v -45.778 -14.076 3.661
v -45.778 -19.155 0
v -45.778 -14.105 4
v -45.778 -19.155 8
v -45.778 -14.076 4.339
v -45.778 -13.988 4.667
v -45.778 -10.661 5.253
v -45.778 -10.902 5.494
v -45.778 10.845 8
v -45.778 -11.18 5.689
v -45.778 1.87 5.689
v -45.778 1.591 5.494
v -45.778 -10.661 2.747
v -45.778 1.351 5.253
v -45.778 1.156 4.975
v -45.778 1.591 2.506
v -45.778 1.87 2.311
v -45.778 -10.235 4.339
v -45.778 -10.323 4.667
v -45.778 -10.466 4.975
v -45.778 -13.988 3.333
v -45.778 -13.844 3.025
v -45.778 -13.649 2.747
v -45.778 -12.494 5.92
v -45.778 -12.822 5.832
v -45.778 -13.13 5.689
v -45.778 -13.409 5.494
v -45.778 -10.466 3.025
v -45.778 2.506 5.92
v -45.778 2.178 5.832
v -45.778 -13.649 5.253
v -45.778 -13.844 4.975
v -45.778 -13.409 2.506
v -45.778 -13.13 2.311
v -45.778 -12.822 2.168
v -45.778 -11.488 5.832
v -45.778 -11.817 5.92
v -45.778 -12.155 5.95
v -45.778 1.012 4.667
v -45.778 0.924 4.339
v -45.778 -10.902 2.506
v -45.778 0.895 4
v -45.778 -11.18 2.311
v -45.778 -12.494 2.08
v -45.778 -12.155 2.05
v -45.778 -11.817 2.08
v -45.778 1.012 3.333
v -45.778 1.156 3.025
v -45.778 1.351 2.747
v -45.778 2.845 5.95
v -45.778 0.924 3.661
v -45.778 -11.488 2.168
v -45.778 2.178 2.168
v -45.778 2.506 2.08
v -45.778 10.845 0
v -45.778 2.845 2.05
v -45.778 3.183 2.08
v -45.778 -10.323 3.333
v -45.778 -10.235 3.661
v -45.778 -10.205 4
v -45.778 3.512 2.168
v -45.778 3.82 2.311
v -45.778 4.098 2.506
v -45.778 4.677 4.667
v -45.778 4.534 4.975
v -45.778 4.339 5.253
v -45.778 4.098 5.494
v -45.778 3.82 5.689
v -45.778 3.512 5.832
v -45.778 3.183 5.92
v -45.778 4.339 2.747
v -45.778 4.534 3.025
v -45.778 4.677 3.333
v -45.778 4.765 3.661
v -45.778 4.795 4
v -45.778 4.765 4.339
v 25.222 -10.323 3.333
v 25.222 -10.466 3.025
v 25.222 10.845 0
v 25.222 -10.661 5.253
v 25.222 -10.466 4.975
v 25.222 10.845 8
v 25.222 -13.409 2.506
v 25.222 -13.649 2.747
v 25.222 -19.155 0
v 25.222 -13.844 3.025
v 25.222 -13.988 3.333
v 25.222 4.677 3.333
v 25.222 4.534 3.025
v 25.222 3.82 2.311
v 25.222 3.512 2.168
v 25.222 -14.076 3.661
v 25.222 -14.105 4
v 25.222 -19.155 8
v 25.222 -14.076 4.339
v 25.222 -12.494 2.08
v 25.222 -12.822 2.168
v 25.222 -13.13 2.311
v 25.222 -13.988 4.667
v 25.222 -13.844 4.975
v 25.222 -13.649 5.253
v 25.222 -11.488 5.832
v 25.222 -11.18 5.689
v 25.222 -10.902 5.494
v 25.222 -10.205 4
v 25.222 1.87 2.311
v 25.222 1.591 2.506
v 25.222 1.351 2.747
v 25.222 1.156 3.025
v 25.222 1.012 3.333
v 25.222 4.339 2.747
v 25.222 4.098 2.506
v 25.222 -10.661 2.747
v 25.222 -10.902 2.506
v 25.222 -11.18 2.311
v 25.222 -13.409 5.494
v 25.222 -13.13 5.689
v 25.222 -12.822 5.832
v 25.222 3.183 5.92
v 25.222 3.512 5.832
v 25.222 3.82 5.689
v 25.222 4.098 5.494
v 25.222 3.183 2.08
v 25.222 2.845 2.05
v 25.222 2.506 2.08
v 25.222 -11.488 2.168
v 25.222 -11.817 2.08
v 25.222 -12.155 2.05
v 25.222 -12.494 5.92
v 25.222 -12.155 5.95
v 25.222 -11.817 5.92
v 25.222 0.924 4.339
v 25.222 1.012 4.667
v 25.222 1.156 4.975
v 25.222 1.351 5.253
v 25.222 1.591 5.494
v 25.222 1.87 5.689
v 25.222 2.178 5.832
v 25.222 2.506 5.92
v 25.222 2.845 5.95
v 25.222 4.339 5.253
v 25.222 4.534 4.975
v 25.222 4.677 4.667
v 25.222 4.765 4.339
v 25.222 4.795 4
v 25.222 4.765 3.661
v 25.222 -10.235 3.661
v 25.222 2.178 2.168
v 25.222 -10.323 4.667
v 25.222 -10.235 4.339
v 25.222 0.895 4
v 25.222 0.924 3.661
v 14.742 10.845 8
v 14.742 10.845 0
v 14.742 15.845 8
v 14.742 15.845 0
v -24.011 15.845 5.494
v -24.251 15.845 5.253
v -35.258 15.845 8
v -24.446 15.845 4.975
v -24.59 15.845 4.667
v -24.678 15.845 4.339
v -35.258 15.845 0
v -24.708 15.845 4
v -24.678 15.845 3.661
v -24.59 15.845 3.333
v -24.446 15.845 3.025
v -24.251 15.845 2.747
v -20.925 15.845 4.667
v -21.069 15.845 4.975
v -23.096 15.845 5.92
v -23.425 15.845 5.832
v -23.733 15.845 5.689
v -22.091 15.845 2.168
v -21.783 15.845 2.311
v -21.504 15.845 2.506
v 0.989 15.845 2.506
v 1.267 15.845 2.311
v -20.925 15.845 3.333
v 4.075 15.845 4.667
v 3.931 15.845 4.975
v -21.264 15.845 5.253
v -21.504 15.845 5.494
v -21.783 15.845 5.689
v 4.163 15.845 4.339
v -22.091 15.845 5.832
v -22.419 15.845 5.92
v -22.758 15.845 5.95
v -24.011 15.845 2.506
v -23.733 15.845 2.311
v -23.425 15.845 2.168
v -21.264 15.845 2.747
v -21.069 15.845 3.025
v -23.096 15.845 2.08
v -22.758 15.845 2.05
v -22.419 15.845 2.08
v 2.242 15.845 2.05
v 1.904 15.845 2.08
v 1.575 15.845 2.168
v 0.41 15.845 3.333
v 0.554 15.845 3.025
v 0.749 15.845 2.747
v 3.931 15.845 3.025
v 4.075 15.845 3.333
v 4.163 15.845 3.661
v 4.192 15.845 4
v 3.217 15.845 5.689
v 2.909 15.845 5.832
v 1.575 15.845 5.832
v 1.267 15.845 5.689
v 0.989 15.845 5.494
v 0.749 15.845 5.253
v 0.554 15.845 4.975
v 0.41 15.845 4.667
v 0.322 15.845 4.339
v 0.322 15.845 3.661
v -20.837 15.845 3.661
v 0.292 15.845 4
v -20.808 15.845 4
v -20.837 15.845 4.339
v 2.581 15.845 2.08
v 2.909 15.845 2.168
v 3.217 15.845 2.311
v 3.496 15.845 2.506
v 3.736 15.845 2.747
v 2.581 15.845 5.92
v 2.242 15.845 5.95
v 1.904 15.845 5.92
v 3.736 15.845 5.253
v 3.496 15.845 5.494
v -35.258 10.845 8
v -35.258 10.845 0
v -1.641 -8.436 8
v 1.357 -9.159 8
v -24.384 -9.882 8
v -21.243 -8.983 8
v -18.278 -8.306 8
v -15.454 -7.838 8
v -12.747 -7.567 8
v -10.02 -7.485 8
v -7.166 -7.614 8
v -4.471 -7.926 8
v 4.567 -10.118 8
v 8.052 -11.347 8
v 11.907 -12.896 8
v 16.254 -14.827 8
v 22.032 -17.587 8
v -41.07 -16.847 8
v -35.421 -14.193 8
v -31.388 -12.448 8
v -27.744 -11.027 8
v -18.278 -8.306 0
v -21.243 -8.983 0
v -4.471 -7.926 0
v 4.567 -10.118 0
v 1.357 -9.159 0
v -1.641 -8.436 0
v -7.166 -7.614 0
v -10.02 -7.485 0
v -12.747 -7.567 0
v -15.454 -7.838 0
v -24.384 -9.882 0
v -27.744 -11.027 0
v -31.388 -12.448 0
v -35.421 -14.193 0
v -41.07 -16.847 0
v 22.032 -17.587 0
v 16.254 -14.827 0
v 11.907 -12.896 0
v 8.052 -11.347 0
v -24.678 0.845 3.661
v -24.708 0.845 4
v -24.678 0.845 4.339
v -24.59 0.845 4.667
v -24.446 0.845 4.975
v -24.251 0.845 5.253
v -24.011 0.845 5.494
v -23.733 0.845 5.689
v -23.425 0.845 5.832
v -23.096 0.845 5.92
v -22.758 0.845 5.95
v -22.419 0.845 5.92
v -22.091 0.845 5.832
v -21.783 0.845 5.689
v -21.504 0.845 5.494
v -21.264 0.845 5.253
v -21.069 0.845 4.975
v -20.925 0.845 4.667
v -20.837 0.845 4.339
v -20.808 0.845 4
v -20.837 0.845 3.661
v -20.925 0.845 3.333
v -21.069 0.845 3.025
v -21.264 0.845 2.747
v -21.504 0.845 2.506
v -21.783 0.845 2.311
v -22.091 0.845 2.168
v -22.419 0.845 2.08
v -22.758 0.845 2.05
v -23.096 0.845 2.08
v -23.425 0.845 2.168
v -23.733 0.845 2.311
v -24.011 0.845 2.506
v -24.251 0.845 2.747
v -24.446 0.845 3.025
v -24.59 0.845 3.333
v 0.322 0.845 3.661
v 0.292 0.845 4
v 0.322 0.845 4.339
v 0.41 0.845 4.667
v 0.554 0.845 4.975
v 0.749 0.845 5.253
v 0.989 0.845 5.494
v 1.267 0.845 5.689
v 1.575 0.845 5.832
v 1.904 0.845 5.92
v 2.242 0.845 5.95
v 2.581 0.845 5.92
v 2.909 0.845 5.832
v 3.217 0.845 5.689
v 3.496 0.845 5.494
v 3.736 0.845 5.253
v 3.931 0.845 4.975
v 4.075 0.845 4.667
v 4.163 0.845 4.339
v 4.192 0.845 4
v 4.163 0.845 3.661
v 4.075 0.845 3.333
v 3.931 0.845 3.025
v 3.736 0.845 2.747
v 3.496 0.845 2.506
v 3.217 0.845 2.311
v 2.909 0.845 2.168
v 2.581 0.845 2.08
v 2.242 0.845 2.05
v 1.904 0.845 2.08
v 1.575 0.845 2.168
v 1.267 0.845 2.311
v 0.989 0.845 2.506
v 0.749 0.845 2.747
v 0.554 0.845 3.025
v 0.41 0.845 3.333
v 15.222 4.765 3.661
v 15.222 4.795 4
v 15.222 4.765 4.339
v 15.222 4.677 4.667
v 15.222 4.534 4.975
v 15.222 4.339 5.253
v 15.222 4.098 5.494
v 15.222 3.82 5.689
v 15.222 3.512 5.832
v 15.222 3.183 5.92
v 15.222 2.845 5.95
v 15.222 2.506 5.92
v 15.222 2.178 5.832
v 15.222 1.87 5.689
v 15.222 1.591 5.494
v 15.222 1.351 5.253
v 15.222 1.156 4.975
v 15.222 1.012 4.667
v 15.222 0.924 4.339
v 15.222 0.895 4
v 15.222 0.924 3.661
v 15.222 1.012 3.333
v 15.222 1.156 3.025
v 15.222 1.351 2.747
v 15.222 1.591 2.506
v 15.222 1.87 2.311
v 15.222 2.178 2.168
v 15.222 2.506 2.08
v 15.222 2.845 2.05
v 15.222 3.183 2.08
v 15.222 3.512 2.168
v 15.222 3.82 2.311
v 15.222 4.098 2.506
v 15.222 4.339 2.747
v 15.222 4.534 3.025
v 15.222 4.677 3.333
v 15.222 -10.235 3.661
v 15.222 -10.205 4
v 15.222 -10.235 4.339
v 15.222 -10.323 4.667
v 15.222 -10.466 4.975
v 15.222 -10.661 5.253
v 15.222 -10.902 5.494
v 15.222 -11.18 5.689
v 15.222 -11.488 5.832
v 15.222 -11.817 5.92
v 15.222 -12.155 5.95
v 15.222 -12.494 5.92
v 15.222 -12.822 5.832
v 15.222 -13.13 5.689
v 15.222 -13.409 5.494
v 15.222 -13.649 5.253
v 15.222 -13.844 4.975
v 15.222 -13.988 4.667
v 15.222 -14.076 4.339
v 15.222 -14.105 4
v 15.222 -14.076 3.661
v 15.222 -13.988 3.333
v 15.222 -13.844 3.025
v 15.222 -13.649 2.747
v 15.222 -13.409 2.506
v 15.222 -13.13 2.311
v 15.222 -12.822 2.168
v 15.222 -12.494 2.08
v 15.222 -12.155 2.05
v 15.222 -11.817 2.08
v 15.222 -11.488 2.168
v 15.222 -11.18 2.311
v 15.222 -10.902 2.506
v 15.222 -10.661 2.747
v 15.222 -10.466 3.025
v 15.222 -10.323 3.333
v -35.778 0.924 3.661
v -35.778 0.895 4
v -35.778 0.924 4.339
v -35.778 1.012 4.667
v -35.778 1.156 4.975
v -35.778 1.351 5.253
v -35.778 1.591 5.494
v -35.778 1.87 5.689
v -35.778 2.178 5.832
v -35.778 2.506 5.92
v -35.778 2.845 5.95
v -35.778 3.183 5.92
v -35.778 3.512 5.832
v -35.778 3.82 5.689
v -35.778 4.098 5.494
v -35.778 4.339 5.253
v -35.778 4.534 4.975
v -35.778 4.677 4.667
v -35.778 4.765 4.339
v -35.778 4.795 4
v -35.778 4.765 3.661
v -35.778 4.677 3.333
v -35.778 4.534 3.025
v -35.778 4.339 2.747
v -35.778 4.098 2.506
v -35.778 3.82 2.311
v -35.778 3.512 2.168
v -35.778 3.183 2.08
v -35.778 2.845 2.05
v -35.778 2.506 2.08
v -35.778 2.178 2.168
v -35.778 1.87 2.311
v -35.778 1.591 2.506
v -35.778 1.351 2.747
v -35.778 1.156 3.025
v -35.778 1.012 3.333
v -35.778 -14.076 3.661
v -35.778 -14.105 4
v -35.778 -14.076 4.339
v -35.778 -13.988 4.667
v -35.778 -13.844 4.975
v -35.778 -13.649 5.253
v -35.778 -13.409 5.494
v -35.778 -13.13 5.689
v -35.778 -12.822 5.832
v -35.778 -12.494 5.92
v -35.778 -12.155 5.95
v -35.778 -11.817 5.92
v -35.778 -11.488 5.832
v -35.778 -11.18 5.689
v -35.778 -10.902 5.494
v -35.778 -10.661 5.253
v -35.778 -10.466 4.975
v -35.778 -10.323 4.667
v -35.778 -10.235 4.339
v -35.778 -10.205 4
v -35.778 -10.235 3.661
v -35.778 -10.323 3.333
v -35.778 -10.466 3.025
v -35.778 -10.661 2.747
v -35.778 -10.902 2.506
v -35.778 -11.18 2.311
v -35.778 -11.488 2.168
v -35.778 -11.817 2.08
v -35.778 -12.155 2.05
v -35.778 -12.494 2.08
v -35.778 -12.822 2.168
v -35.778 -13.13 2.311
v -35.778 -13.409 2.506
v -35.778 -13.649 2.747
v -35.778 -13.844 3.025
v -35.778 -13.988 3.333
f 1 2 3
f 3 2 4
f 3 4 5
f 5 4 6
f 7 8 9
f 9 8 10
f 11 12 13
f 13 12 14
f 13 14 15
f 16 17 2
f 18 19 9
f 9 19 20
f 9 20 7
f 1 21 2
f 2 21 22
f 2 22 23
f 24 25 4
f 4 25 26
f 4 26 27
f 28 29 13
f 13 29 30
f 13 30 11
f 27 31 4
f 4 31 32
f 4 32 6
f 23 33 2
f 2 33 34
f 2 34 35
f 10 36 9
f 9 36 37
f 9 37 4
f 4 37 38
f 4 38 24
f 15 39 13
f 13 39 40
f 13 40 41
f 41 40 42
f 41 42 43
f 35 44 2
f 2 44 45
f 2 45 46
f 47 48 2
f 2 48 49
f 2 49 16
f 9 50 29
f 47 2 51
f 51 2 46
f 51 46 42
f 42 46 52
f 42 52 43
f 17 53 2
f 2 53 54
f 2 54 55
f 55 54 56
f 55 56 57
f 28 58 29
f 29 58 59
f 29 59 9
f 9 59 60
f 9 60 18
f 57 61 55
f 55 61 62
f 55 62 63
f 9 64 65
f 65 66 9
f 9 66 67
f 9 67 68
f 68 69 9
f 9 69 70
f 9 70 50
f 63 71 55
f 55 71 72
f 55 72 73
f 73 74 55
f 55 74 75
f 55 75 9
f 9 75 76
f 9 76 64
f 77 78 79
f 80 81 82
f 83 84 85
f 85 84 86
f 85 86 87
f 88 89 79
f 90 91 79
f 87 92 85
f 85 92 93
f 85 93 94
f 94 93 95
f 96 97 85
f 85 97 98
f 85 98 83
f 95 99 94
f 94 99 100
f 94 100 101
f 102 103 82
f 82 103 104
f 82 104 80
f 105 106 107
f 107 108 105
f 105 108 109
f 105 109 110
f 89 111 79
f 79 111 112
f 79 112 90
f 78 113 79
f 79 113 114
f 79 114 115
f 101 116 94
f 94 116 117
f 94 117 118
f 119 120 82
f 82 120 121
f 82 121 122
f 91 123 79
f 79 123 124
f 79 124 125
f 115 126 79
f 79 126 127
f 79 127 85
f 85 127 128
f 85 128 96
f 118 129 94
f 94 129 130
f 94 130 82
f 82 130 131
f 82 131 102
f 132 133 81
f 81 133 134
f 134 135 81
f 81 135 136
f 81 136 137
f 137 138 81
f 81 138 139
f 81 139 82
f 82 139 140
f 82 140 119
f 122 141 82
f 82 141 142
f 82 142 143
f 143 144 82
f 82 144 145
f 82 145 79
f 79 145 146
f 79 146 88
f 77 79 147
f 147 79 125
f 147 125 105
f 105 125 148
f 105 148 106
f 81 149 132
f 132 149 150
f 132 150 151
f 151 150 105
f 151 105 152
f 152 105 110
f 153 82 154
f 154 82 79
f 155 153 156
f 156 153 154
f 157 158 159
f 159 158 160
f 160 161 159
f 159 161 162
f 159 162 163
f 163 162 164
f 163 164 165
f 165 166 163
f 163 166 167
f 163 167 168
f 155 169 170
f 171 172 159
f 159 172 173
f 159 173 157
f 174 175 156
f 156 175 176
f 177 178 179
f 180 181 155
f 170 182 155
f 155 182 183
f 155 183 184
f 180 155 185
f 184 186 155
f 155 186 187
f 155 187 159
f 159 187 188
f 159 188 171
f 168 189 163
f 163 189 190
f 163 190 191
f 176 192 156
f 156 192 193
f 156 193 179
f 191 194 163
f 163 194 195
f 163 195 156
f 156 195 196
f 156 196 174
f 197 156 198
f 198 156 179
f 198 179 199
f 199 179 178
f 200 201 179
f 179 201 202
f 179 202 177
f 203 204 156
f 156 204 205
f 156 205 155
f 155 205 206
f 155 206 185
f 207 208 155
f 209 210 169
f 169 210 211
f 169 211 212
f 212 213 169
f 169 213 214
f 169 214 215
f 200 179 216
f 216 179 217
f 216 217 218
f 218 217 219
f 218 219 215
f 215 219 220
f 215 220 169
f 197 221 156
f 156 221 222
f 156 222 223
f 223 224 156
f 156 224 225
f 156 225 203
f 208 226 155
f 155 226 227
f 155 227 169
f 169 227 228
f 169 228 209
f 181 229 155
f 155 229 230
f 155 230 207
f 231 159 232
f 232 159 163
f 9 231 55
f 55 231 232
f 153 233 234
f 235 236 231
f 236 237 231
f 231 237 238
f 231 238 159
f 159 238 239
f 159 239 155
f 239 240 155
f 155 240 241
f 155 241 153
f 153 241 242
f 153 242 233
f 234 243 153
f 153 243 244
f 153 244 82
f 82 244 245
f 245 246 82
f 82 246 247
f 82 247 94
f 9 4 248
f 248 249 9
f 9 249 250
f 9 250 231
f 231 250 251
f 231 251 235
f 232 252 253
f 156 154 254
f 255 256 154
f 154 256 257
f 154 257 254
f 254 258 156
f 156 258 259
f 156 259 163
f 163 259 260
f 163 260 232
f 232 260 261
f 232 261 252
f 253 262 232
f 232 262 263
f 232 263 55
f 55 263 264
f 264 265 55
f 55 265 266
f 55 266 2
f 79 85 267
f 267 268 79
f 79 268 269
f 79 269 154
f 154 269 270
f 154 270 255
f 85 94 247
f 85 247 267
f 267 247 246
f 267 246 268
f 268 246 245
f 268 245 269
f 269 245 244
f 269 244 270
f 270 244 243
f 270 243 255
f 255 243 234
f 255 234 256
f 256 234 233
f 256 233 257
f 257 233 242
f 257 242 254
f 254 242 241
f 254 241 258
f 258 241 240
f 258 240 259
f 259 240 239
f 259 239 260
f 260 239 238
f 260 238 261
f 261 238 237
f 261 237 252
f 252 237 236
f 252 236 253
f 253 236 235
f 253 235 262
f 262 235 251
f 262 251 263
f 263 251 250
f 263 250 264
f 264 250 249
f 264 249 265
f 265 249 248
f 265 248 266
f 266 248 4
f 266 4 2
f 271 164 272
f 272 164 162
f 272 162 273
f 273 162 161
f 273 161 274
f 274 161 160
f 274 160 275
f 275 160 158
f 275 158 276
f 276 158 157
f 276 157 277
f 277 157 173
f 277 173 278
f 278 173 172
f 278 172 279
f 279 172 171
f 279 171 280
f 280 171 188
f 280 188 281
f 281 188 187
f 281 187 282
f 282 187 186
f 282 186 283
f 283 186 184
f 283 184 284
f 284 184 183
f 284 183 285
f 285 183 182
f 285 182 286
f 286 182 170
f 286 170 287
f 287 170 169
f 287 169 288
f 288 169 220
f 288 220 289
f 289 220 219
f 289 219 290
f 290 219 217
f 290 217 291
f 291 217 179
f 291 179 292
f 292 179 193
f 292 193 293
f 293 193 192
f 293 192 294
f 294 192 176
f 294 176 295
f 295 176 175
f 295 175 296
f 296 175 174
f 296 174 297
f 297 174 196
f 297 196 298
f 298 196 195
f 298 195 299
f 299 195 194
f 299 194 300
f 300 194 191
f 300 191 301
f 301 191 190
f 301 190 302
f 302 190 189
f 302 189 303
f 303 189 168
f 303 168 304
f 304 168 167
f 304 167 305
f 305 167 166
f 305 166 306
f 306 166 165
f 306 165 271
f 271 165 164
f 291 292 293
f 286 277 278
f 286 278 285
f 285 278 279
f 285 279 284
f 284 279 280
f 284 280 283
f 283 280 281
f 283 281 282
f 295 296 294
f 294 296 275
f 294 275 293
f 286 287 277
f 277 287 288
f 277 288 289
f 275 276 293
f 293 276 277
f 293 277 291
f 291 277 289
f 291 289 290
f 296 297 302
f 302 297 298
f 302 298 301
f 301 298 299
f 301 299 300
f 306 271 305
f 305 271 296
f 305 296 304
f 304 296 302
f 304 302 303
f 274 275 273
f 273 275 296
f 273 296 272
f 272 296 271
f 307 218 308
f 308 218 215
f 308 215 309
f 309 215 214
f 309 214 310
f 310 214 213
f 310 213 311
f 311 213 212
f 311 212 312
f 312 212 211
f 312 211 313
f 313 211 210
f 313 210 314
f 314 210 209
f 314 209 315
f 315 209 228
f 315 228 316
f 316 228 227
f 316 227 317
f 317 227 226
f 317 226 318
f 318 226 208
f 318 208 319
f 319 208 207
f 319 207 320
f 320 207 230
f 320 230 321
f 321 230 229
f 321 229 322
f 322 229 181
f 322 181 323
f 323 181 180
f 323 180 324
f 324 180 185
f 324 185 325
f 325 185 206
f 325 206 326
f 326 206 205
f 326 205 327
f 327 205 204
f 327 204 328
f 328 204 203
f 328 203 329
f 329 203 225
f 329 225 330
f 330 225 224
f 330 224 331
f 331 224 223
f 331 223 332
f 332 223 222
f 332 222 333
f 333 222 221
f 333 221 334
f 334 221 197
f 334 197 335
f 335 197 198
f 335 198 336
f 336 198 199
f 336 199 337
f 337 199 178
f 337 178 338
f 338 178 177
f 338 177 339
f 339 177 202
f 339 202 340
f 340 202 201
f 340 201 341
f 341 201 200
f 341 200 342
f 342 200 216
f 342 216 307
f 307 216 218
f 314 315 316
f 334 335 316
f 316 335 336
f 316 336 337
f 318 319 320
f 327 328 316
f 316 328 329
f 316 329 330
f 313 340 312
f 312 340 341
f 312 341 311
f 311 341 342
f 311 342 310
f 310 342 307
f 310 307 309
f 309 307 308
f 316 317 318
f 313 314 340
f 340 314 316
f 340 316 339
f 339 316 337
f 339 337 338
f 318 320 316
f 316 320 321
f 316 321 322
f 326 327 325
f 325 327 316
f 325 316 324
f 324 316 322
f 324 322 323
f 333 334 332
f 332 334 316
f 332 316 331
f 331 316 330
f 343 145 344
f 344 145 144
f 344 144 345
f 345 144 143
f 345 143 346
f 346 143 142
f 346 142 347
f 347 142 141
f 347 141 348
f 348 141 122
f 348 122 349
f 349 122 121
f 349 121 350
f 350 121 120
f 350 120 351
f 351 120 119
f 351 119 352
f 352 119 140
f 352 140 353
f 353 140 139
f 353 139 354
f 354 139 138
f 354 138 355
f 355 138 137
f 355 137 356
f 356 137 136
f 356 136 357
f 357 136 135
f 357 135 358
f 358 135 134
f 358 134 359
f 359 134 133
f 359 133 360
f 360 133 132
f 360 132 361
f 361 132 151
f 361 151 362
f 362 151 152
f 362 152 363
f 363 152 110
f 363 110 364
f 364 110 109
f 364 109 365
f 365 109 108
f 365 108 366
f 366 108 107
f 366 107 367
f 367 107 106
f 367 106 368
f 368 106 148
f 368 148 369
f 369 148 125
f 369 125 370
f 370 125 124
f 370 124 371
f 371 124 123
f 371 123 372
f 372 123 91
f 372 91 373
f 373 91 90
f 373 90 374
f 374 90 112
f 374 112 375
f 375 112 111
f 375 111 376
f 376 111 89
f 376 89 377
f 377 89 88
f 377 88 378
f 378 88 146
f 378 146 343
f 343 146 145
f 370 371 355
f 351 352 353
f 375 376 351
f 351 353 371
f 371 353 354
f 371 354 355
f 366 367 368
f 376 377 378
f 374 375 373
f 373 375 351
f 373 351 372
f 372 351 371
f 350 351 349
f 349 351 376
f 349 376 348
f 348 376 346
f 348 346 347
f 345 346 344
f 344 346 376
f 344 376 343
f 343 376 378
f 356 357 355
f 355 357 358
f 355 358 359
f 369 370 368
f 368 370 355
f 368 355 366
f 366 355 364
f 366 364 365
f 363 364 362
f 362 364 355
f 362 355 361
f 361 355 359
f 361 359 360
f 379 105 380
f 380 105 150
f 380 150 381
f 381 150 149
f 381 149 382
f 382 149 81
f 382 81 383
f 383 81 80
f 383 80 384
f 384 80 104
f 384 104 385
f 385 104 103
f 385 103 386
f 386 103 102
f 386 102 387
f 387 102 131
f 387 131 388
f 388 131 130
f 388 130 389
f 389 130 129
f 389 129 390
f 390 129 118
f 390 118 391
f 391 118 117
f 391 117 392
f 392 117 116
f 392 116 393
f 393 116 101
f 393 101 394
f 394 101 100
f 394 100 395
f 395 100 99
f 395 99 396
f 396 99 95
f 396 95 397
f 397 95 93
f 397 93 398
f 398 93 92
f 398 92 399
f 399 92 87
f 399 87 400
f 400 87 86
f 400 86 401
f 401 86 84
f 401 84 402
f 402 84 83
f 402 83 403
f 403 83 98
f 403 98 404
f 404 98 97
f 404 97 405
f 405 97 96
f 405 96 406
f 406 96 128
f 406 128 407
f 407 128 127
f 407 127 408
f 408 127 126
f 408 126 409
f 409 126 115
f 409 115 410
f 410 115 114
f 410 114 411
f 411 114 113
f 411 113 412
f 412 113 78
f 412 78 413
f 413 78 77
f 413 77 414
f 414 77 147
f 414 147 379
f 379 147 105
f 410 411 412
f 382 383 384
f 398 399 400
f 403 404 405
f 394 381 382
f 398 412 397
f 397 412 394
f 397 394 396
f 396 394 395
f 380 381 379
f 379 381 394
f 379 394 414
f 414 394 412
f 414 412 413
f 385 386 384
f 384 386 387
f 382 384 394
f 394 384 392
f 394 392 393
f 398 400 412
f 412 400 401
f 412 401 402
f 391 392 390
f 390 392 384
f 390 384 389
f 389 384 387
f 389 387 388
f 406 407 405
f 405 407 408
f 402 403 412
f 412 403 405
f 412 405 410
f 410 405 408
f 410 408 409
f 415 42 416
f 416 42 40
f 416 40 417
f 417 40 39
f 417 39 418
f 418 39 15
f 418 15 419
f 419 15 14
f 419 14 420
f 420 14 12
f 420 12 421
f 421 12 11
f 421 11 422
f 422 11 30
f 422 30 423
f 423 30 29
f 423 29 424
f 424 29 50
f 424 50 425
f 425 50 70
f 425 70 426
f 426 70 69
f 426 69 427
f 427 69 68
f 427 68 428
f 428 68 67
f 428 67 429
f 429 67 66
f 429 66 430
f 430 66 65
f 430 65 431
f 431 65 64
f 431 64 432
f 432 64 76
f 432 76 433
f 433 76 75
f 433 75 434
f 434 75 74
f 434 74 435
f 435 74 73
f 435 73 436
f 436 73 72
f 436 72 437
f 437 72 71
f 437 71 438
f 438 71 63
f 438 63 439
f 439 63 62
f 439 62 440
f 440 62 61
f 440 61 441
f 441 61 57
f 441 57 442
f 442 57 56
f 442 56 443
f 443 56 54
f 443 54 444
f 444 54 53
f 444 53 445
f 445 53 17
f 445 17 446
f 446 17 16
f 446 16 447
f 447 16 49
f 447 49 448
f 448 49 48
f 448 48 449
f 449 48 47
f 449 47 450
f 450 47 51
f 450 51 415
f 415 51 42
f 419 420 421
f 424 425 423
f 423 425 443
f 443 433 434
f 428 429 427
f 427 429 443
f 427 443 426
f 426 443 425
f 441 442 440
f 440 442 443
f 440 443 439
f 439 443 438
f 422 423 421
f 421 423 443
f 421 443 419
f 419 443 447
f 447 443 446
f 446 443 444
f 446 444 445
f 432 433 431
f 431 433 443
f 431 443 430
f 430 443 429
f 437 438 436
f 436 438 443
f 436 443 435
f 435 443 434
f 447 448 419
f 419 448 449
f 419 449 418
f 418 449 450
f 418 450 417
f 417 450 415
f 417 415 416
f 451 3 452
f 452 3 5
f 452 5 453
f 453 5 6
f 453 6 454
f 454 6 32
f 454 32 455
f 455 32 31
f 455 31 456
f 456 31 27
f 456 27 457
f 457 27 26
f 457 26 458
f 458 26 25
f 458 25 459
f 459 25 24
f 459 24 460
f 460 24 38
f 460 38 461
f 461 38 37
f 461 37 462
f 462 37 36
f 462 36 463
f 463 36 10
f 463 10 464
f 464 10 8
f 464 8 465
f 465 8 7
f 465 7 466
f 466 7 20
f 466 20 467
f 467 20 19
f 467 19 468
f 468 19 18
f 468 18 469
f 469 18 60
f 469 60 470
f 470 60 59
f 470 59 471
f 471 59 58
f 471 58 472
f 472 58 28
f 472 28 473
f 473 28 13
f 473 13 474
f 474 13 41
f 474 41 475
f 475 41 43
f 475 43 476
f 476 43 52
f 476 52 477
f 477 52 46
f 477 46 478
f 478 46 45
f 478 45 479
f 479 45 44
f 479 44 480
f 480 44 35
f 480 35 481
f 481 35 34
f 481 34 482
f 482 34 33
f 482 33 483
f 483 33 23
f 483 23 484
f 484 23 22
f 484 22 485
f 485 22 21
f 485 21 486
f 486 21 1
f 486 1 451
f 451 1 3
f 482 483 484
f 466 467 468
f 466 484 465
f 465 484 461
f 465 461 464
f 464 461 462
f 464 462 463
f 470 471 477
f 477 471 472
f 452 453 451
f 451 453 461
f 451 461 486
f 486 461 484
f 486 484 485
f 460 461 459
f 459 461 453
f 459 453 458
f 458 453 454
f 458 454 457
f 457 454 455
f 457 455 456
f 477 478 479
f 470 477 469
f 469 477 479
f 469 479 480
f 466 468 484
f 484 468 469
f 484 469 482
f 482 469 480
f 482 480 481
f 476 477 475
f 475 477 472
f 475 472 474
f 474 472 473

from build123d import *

# Parameters (mm, degrees)
EXTRUDE1_DEPTH = 8
EXTRUDE2_DEPTH = 8
SKETCH3_R      = 1.95
EXTRUDE3_DEPTH = 15
SKETCH4_R      = 1.95
EXTRUDE4_DEPTH = 10
SKETCH5_R      = 1.95
EXTRUDE5_DEPTH = 10


with BuildPart() as part:
    # Sketch1 → Extrude1 (new body)
    with BuildSketch(Plane.XY):
        Polygon((-45.778459293, 10.844789824), (-35.257703973, 10.844789824), (-35.257703973, 15.844789824), (14.742296027, 15.844789824), (14.742296027, 10.844789824), (25.221540707, 10.844789824), (25.221540707, -19.155210176), (-45.778459293, -19.155210176), align=None)
    extrude(amount=EXTRUDE1_DEPTH)

    # Sketch2 → Extrude2 (cut)
    with BuildSketch(Plane.XY.offset(8)):
        with BuildLine():
            Line((-45.778459293, -19.155210176), (25.221540707, -19.155210176))
            add(Edge.make_bspline(
                [(-45.778459293, -19.155210176), (-33.94270631, -13.318817895), (-10.275364533, -1.648086759), (13.390626945, -13.320186926), (25.221540707, -19.155210176)],
                knots=[0, 0, 0, 0, 0.500087973, 1, 1, 1, 1], degree=3))
        make_face()
    extrude(amount=-EXTRUDE2_DEPTH, mode=Mode.SUBTRACT)

    # Sketch3 → Extrude3 (cut)
    with BuildSketch(Plane(origin=(0, 15.844789824, 0), x_dir=(-1, 0, 0), z_dir=(0, 1, 0))):
        with Locations((22.757703973, 4)):
            Circle(SKETCH3_R)
        with Locations((-2.242296027, 4)):
            Circle(SKETCH3_R)
    extrude(amount=-EXTRUDE3_DEPTH, mode=Mode.SUBTRACT)

    # Sketch4 → Extrude4 (cut)
    with BuildSketch(Plane(origin=(25.221540707, 0, 0), x_dir=(0, 0, -1), z_dir=(1, 0, 0))):
        with Locations((-4, 2.844789824)):
            Circle(SKETCH4_R)
        with Locations((-4, -12.155210176)):
            Circle(SKETCH4_R)
    extrude(amount=-EXTRUDE4_DEPTH, mode=Mode.SUBTRACT)

    # Sketch5 → Extrude5 (cut)
    with BuildSketch(Plane.ZY.offset(45.778459293)):
        with Locations((4, 2.844789824)):
            Circle(SKETCH5_R)
        with Locations((4, -12.155210176)):
            Circle(SKETCH5_R)
    extrude(amount=-EXTRUDE5_DEPTH, mode=Mode.SUBTRACT)


solid = part.part
